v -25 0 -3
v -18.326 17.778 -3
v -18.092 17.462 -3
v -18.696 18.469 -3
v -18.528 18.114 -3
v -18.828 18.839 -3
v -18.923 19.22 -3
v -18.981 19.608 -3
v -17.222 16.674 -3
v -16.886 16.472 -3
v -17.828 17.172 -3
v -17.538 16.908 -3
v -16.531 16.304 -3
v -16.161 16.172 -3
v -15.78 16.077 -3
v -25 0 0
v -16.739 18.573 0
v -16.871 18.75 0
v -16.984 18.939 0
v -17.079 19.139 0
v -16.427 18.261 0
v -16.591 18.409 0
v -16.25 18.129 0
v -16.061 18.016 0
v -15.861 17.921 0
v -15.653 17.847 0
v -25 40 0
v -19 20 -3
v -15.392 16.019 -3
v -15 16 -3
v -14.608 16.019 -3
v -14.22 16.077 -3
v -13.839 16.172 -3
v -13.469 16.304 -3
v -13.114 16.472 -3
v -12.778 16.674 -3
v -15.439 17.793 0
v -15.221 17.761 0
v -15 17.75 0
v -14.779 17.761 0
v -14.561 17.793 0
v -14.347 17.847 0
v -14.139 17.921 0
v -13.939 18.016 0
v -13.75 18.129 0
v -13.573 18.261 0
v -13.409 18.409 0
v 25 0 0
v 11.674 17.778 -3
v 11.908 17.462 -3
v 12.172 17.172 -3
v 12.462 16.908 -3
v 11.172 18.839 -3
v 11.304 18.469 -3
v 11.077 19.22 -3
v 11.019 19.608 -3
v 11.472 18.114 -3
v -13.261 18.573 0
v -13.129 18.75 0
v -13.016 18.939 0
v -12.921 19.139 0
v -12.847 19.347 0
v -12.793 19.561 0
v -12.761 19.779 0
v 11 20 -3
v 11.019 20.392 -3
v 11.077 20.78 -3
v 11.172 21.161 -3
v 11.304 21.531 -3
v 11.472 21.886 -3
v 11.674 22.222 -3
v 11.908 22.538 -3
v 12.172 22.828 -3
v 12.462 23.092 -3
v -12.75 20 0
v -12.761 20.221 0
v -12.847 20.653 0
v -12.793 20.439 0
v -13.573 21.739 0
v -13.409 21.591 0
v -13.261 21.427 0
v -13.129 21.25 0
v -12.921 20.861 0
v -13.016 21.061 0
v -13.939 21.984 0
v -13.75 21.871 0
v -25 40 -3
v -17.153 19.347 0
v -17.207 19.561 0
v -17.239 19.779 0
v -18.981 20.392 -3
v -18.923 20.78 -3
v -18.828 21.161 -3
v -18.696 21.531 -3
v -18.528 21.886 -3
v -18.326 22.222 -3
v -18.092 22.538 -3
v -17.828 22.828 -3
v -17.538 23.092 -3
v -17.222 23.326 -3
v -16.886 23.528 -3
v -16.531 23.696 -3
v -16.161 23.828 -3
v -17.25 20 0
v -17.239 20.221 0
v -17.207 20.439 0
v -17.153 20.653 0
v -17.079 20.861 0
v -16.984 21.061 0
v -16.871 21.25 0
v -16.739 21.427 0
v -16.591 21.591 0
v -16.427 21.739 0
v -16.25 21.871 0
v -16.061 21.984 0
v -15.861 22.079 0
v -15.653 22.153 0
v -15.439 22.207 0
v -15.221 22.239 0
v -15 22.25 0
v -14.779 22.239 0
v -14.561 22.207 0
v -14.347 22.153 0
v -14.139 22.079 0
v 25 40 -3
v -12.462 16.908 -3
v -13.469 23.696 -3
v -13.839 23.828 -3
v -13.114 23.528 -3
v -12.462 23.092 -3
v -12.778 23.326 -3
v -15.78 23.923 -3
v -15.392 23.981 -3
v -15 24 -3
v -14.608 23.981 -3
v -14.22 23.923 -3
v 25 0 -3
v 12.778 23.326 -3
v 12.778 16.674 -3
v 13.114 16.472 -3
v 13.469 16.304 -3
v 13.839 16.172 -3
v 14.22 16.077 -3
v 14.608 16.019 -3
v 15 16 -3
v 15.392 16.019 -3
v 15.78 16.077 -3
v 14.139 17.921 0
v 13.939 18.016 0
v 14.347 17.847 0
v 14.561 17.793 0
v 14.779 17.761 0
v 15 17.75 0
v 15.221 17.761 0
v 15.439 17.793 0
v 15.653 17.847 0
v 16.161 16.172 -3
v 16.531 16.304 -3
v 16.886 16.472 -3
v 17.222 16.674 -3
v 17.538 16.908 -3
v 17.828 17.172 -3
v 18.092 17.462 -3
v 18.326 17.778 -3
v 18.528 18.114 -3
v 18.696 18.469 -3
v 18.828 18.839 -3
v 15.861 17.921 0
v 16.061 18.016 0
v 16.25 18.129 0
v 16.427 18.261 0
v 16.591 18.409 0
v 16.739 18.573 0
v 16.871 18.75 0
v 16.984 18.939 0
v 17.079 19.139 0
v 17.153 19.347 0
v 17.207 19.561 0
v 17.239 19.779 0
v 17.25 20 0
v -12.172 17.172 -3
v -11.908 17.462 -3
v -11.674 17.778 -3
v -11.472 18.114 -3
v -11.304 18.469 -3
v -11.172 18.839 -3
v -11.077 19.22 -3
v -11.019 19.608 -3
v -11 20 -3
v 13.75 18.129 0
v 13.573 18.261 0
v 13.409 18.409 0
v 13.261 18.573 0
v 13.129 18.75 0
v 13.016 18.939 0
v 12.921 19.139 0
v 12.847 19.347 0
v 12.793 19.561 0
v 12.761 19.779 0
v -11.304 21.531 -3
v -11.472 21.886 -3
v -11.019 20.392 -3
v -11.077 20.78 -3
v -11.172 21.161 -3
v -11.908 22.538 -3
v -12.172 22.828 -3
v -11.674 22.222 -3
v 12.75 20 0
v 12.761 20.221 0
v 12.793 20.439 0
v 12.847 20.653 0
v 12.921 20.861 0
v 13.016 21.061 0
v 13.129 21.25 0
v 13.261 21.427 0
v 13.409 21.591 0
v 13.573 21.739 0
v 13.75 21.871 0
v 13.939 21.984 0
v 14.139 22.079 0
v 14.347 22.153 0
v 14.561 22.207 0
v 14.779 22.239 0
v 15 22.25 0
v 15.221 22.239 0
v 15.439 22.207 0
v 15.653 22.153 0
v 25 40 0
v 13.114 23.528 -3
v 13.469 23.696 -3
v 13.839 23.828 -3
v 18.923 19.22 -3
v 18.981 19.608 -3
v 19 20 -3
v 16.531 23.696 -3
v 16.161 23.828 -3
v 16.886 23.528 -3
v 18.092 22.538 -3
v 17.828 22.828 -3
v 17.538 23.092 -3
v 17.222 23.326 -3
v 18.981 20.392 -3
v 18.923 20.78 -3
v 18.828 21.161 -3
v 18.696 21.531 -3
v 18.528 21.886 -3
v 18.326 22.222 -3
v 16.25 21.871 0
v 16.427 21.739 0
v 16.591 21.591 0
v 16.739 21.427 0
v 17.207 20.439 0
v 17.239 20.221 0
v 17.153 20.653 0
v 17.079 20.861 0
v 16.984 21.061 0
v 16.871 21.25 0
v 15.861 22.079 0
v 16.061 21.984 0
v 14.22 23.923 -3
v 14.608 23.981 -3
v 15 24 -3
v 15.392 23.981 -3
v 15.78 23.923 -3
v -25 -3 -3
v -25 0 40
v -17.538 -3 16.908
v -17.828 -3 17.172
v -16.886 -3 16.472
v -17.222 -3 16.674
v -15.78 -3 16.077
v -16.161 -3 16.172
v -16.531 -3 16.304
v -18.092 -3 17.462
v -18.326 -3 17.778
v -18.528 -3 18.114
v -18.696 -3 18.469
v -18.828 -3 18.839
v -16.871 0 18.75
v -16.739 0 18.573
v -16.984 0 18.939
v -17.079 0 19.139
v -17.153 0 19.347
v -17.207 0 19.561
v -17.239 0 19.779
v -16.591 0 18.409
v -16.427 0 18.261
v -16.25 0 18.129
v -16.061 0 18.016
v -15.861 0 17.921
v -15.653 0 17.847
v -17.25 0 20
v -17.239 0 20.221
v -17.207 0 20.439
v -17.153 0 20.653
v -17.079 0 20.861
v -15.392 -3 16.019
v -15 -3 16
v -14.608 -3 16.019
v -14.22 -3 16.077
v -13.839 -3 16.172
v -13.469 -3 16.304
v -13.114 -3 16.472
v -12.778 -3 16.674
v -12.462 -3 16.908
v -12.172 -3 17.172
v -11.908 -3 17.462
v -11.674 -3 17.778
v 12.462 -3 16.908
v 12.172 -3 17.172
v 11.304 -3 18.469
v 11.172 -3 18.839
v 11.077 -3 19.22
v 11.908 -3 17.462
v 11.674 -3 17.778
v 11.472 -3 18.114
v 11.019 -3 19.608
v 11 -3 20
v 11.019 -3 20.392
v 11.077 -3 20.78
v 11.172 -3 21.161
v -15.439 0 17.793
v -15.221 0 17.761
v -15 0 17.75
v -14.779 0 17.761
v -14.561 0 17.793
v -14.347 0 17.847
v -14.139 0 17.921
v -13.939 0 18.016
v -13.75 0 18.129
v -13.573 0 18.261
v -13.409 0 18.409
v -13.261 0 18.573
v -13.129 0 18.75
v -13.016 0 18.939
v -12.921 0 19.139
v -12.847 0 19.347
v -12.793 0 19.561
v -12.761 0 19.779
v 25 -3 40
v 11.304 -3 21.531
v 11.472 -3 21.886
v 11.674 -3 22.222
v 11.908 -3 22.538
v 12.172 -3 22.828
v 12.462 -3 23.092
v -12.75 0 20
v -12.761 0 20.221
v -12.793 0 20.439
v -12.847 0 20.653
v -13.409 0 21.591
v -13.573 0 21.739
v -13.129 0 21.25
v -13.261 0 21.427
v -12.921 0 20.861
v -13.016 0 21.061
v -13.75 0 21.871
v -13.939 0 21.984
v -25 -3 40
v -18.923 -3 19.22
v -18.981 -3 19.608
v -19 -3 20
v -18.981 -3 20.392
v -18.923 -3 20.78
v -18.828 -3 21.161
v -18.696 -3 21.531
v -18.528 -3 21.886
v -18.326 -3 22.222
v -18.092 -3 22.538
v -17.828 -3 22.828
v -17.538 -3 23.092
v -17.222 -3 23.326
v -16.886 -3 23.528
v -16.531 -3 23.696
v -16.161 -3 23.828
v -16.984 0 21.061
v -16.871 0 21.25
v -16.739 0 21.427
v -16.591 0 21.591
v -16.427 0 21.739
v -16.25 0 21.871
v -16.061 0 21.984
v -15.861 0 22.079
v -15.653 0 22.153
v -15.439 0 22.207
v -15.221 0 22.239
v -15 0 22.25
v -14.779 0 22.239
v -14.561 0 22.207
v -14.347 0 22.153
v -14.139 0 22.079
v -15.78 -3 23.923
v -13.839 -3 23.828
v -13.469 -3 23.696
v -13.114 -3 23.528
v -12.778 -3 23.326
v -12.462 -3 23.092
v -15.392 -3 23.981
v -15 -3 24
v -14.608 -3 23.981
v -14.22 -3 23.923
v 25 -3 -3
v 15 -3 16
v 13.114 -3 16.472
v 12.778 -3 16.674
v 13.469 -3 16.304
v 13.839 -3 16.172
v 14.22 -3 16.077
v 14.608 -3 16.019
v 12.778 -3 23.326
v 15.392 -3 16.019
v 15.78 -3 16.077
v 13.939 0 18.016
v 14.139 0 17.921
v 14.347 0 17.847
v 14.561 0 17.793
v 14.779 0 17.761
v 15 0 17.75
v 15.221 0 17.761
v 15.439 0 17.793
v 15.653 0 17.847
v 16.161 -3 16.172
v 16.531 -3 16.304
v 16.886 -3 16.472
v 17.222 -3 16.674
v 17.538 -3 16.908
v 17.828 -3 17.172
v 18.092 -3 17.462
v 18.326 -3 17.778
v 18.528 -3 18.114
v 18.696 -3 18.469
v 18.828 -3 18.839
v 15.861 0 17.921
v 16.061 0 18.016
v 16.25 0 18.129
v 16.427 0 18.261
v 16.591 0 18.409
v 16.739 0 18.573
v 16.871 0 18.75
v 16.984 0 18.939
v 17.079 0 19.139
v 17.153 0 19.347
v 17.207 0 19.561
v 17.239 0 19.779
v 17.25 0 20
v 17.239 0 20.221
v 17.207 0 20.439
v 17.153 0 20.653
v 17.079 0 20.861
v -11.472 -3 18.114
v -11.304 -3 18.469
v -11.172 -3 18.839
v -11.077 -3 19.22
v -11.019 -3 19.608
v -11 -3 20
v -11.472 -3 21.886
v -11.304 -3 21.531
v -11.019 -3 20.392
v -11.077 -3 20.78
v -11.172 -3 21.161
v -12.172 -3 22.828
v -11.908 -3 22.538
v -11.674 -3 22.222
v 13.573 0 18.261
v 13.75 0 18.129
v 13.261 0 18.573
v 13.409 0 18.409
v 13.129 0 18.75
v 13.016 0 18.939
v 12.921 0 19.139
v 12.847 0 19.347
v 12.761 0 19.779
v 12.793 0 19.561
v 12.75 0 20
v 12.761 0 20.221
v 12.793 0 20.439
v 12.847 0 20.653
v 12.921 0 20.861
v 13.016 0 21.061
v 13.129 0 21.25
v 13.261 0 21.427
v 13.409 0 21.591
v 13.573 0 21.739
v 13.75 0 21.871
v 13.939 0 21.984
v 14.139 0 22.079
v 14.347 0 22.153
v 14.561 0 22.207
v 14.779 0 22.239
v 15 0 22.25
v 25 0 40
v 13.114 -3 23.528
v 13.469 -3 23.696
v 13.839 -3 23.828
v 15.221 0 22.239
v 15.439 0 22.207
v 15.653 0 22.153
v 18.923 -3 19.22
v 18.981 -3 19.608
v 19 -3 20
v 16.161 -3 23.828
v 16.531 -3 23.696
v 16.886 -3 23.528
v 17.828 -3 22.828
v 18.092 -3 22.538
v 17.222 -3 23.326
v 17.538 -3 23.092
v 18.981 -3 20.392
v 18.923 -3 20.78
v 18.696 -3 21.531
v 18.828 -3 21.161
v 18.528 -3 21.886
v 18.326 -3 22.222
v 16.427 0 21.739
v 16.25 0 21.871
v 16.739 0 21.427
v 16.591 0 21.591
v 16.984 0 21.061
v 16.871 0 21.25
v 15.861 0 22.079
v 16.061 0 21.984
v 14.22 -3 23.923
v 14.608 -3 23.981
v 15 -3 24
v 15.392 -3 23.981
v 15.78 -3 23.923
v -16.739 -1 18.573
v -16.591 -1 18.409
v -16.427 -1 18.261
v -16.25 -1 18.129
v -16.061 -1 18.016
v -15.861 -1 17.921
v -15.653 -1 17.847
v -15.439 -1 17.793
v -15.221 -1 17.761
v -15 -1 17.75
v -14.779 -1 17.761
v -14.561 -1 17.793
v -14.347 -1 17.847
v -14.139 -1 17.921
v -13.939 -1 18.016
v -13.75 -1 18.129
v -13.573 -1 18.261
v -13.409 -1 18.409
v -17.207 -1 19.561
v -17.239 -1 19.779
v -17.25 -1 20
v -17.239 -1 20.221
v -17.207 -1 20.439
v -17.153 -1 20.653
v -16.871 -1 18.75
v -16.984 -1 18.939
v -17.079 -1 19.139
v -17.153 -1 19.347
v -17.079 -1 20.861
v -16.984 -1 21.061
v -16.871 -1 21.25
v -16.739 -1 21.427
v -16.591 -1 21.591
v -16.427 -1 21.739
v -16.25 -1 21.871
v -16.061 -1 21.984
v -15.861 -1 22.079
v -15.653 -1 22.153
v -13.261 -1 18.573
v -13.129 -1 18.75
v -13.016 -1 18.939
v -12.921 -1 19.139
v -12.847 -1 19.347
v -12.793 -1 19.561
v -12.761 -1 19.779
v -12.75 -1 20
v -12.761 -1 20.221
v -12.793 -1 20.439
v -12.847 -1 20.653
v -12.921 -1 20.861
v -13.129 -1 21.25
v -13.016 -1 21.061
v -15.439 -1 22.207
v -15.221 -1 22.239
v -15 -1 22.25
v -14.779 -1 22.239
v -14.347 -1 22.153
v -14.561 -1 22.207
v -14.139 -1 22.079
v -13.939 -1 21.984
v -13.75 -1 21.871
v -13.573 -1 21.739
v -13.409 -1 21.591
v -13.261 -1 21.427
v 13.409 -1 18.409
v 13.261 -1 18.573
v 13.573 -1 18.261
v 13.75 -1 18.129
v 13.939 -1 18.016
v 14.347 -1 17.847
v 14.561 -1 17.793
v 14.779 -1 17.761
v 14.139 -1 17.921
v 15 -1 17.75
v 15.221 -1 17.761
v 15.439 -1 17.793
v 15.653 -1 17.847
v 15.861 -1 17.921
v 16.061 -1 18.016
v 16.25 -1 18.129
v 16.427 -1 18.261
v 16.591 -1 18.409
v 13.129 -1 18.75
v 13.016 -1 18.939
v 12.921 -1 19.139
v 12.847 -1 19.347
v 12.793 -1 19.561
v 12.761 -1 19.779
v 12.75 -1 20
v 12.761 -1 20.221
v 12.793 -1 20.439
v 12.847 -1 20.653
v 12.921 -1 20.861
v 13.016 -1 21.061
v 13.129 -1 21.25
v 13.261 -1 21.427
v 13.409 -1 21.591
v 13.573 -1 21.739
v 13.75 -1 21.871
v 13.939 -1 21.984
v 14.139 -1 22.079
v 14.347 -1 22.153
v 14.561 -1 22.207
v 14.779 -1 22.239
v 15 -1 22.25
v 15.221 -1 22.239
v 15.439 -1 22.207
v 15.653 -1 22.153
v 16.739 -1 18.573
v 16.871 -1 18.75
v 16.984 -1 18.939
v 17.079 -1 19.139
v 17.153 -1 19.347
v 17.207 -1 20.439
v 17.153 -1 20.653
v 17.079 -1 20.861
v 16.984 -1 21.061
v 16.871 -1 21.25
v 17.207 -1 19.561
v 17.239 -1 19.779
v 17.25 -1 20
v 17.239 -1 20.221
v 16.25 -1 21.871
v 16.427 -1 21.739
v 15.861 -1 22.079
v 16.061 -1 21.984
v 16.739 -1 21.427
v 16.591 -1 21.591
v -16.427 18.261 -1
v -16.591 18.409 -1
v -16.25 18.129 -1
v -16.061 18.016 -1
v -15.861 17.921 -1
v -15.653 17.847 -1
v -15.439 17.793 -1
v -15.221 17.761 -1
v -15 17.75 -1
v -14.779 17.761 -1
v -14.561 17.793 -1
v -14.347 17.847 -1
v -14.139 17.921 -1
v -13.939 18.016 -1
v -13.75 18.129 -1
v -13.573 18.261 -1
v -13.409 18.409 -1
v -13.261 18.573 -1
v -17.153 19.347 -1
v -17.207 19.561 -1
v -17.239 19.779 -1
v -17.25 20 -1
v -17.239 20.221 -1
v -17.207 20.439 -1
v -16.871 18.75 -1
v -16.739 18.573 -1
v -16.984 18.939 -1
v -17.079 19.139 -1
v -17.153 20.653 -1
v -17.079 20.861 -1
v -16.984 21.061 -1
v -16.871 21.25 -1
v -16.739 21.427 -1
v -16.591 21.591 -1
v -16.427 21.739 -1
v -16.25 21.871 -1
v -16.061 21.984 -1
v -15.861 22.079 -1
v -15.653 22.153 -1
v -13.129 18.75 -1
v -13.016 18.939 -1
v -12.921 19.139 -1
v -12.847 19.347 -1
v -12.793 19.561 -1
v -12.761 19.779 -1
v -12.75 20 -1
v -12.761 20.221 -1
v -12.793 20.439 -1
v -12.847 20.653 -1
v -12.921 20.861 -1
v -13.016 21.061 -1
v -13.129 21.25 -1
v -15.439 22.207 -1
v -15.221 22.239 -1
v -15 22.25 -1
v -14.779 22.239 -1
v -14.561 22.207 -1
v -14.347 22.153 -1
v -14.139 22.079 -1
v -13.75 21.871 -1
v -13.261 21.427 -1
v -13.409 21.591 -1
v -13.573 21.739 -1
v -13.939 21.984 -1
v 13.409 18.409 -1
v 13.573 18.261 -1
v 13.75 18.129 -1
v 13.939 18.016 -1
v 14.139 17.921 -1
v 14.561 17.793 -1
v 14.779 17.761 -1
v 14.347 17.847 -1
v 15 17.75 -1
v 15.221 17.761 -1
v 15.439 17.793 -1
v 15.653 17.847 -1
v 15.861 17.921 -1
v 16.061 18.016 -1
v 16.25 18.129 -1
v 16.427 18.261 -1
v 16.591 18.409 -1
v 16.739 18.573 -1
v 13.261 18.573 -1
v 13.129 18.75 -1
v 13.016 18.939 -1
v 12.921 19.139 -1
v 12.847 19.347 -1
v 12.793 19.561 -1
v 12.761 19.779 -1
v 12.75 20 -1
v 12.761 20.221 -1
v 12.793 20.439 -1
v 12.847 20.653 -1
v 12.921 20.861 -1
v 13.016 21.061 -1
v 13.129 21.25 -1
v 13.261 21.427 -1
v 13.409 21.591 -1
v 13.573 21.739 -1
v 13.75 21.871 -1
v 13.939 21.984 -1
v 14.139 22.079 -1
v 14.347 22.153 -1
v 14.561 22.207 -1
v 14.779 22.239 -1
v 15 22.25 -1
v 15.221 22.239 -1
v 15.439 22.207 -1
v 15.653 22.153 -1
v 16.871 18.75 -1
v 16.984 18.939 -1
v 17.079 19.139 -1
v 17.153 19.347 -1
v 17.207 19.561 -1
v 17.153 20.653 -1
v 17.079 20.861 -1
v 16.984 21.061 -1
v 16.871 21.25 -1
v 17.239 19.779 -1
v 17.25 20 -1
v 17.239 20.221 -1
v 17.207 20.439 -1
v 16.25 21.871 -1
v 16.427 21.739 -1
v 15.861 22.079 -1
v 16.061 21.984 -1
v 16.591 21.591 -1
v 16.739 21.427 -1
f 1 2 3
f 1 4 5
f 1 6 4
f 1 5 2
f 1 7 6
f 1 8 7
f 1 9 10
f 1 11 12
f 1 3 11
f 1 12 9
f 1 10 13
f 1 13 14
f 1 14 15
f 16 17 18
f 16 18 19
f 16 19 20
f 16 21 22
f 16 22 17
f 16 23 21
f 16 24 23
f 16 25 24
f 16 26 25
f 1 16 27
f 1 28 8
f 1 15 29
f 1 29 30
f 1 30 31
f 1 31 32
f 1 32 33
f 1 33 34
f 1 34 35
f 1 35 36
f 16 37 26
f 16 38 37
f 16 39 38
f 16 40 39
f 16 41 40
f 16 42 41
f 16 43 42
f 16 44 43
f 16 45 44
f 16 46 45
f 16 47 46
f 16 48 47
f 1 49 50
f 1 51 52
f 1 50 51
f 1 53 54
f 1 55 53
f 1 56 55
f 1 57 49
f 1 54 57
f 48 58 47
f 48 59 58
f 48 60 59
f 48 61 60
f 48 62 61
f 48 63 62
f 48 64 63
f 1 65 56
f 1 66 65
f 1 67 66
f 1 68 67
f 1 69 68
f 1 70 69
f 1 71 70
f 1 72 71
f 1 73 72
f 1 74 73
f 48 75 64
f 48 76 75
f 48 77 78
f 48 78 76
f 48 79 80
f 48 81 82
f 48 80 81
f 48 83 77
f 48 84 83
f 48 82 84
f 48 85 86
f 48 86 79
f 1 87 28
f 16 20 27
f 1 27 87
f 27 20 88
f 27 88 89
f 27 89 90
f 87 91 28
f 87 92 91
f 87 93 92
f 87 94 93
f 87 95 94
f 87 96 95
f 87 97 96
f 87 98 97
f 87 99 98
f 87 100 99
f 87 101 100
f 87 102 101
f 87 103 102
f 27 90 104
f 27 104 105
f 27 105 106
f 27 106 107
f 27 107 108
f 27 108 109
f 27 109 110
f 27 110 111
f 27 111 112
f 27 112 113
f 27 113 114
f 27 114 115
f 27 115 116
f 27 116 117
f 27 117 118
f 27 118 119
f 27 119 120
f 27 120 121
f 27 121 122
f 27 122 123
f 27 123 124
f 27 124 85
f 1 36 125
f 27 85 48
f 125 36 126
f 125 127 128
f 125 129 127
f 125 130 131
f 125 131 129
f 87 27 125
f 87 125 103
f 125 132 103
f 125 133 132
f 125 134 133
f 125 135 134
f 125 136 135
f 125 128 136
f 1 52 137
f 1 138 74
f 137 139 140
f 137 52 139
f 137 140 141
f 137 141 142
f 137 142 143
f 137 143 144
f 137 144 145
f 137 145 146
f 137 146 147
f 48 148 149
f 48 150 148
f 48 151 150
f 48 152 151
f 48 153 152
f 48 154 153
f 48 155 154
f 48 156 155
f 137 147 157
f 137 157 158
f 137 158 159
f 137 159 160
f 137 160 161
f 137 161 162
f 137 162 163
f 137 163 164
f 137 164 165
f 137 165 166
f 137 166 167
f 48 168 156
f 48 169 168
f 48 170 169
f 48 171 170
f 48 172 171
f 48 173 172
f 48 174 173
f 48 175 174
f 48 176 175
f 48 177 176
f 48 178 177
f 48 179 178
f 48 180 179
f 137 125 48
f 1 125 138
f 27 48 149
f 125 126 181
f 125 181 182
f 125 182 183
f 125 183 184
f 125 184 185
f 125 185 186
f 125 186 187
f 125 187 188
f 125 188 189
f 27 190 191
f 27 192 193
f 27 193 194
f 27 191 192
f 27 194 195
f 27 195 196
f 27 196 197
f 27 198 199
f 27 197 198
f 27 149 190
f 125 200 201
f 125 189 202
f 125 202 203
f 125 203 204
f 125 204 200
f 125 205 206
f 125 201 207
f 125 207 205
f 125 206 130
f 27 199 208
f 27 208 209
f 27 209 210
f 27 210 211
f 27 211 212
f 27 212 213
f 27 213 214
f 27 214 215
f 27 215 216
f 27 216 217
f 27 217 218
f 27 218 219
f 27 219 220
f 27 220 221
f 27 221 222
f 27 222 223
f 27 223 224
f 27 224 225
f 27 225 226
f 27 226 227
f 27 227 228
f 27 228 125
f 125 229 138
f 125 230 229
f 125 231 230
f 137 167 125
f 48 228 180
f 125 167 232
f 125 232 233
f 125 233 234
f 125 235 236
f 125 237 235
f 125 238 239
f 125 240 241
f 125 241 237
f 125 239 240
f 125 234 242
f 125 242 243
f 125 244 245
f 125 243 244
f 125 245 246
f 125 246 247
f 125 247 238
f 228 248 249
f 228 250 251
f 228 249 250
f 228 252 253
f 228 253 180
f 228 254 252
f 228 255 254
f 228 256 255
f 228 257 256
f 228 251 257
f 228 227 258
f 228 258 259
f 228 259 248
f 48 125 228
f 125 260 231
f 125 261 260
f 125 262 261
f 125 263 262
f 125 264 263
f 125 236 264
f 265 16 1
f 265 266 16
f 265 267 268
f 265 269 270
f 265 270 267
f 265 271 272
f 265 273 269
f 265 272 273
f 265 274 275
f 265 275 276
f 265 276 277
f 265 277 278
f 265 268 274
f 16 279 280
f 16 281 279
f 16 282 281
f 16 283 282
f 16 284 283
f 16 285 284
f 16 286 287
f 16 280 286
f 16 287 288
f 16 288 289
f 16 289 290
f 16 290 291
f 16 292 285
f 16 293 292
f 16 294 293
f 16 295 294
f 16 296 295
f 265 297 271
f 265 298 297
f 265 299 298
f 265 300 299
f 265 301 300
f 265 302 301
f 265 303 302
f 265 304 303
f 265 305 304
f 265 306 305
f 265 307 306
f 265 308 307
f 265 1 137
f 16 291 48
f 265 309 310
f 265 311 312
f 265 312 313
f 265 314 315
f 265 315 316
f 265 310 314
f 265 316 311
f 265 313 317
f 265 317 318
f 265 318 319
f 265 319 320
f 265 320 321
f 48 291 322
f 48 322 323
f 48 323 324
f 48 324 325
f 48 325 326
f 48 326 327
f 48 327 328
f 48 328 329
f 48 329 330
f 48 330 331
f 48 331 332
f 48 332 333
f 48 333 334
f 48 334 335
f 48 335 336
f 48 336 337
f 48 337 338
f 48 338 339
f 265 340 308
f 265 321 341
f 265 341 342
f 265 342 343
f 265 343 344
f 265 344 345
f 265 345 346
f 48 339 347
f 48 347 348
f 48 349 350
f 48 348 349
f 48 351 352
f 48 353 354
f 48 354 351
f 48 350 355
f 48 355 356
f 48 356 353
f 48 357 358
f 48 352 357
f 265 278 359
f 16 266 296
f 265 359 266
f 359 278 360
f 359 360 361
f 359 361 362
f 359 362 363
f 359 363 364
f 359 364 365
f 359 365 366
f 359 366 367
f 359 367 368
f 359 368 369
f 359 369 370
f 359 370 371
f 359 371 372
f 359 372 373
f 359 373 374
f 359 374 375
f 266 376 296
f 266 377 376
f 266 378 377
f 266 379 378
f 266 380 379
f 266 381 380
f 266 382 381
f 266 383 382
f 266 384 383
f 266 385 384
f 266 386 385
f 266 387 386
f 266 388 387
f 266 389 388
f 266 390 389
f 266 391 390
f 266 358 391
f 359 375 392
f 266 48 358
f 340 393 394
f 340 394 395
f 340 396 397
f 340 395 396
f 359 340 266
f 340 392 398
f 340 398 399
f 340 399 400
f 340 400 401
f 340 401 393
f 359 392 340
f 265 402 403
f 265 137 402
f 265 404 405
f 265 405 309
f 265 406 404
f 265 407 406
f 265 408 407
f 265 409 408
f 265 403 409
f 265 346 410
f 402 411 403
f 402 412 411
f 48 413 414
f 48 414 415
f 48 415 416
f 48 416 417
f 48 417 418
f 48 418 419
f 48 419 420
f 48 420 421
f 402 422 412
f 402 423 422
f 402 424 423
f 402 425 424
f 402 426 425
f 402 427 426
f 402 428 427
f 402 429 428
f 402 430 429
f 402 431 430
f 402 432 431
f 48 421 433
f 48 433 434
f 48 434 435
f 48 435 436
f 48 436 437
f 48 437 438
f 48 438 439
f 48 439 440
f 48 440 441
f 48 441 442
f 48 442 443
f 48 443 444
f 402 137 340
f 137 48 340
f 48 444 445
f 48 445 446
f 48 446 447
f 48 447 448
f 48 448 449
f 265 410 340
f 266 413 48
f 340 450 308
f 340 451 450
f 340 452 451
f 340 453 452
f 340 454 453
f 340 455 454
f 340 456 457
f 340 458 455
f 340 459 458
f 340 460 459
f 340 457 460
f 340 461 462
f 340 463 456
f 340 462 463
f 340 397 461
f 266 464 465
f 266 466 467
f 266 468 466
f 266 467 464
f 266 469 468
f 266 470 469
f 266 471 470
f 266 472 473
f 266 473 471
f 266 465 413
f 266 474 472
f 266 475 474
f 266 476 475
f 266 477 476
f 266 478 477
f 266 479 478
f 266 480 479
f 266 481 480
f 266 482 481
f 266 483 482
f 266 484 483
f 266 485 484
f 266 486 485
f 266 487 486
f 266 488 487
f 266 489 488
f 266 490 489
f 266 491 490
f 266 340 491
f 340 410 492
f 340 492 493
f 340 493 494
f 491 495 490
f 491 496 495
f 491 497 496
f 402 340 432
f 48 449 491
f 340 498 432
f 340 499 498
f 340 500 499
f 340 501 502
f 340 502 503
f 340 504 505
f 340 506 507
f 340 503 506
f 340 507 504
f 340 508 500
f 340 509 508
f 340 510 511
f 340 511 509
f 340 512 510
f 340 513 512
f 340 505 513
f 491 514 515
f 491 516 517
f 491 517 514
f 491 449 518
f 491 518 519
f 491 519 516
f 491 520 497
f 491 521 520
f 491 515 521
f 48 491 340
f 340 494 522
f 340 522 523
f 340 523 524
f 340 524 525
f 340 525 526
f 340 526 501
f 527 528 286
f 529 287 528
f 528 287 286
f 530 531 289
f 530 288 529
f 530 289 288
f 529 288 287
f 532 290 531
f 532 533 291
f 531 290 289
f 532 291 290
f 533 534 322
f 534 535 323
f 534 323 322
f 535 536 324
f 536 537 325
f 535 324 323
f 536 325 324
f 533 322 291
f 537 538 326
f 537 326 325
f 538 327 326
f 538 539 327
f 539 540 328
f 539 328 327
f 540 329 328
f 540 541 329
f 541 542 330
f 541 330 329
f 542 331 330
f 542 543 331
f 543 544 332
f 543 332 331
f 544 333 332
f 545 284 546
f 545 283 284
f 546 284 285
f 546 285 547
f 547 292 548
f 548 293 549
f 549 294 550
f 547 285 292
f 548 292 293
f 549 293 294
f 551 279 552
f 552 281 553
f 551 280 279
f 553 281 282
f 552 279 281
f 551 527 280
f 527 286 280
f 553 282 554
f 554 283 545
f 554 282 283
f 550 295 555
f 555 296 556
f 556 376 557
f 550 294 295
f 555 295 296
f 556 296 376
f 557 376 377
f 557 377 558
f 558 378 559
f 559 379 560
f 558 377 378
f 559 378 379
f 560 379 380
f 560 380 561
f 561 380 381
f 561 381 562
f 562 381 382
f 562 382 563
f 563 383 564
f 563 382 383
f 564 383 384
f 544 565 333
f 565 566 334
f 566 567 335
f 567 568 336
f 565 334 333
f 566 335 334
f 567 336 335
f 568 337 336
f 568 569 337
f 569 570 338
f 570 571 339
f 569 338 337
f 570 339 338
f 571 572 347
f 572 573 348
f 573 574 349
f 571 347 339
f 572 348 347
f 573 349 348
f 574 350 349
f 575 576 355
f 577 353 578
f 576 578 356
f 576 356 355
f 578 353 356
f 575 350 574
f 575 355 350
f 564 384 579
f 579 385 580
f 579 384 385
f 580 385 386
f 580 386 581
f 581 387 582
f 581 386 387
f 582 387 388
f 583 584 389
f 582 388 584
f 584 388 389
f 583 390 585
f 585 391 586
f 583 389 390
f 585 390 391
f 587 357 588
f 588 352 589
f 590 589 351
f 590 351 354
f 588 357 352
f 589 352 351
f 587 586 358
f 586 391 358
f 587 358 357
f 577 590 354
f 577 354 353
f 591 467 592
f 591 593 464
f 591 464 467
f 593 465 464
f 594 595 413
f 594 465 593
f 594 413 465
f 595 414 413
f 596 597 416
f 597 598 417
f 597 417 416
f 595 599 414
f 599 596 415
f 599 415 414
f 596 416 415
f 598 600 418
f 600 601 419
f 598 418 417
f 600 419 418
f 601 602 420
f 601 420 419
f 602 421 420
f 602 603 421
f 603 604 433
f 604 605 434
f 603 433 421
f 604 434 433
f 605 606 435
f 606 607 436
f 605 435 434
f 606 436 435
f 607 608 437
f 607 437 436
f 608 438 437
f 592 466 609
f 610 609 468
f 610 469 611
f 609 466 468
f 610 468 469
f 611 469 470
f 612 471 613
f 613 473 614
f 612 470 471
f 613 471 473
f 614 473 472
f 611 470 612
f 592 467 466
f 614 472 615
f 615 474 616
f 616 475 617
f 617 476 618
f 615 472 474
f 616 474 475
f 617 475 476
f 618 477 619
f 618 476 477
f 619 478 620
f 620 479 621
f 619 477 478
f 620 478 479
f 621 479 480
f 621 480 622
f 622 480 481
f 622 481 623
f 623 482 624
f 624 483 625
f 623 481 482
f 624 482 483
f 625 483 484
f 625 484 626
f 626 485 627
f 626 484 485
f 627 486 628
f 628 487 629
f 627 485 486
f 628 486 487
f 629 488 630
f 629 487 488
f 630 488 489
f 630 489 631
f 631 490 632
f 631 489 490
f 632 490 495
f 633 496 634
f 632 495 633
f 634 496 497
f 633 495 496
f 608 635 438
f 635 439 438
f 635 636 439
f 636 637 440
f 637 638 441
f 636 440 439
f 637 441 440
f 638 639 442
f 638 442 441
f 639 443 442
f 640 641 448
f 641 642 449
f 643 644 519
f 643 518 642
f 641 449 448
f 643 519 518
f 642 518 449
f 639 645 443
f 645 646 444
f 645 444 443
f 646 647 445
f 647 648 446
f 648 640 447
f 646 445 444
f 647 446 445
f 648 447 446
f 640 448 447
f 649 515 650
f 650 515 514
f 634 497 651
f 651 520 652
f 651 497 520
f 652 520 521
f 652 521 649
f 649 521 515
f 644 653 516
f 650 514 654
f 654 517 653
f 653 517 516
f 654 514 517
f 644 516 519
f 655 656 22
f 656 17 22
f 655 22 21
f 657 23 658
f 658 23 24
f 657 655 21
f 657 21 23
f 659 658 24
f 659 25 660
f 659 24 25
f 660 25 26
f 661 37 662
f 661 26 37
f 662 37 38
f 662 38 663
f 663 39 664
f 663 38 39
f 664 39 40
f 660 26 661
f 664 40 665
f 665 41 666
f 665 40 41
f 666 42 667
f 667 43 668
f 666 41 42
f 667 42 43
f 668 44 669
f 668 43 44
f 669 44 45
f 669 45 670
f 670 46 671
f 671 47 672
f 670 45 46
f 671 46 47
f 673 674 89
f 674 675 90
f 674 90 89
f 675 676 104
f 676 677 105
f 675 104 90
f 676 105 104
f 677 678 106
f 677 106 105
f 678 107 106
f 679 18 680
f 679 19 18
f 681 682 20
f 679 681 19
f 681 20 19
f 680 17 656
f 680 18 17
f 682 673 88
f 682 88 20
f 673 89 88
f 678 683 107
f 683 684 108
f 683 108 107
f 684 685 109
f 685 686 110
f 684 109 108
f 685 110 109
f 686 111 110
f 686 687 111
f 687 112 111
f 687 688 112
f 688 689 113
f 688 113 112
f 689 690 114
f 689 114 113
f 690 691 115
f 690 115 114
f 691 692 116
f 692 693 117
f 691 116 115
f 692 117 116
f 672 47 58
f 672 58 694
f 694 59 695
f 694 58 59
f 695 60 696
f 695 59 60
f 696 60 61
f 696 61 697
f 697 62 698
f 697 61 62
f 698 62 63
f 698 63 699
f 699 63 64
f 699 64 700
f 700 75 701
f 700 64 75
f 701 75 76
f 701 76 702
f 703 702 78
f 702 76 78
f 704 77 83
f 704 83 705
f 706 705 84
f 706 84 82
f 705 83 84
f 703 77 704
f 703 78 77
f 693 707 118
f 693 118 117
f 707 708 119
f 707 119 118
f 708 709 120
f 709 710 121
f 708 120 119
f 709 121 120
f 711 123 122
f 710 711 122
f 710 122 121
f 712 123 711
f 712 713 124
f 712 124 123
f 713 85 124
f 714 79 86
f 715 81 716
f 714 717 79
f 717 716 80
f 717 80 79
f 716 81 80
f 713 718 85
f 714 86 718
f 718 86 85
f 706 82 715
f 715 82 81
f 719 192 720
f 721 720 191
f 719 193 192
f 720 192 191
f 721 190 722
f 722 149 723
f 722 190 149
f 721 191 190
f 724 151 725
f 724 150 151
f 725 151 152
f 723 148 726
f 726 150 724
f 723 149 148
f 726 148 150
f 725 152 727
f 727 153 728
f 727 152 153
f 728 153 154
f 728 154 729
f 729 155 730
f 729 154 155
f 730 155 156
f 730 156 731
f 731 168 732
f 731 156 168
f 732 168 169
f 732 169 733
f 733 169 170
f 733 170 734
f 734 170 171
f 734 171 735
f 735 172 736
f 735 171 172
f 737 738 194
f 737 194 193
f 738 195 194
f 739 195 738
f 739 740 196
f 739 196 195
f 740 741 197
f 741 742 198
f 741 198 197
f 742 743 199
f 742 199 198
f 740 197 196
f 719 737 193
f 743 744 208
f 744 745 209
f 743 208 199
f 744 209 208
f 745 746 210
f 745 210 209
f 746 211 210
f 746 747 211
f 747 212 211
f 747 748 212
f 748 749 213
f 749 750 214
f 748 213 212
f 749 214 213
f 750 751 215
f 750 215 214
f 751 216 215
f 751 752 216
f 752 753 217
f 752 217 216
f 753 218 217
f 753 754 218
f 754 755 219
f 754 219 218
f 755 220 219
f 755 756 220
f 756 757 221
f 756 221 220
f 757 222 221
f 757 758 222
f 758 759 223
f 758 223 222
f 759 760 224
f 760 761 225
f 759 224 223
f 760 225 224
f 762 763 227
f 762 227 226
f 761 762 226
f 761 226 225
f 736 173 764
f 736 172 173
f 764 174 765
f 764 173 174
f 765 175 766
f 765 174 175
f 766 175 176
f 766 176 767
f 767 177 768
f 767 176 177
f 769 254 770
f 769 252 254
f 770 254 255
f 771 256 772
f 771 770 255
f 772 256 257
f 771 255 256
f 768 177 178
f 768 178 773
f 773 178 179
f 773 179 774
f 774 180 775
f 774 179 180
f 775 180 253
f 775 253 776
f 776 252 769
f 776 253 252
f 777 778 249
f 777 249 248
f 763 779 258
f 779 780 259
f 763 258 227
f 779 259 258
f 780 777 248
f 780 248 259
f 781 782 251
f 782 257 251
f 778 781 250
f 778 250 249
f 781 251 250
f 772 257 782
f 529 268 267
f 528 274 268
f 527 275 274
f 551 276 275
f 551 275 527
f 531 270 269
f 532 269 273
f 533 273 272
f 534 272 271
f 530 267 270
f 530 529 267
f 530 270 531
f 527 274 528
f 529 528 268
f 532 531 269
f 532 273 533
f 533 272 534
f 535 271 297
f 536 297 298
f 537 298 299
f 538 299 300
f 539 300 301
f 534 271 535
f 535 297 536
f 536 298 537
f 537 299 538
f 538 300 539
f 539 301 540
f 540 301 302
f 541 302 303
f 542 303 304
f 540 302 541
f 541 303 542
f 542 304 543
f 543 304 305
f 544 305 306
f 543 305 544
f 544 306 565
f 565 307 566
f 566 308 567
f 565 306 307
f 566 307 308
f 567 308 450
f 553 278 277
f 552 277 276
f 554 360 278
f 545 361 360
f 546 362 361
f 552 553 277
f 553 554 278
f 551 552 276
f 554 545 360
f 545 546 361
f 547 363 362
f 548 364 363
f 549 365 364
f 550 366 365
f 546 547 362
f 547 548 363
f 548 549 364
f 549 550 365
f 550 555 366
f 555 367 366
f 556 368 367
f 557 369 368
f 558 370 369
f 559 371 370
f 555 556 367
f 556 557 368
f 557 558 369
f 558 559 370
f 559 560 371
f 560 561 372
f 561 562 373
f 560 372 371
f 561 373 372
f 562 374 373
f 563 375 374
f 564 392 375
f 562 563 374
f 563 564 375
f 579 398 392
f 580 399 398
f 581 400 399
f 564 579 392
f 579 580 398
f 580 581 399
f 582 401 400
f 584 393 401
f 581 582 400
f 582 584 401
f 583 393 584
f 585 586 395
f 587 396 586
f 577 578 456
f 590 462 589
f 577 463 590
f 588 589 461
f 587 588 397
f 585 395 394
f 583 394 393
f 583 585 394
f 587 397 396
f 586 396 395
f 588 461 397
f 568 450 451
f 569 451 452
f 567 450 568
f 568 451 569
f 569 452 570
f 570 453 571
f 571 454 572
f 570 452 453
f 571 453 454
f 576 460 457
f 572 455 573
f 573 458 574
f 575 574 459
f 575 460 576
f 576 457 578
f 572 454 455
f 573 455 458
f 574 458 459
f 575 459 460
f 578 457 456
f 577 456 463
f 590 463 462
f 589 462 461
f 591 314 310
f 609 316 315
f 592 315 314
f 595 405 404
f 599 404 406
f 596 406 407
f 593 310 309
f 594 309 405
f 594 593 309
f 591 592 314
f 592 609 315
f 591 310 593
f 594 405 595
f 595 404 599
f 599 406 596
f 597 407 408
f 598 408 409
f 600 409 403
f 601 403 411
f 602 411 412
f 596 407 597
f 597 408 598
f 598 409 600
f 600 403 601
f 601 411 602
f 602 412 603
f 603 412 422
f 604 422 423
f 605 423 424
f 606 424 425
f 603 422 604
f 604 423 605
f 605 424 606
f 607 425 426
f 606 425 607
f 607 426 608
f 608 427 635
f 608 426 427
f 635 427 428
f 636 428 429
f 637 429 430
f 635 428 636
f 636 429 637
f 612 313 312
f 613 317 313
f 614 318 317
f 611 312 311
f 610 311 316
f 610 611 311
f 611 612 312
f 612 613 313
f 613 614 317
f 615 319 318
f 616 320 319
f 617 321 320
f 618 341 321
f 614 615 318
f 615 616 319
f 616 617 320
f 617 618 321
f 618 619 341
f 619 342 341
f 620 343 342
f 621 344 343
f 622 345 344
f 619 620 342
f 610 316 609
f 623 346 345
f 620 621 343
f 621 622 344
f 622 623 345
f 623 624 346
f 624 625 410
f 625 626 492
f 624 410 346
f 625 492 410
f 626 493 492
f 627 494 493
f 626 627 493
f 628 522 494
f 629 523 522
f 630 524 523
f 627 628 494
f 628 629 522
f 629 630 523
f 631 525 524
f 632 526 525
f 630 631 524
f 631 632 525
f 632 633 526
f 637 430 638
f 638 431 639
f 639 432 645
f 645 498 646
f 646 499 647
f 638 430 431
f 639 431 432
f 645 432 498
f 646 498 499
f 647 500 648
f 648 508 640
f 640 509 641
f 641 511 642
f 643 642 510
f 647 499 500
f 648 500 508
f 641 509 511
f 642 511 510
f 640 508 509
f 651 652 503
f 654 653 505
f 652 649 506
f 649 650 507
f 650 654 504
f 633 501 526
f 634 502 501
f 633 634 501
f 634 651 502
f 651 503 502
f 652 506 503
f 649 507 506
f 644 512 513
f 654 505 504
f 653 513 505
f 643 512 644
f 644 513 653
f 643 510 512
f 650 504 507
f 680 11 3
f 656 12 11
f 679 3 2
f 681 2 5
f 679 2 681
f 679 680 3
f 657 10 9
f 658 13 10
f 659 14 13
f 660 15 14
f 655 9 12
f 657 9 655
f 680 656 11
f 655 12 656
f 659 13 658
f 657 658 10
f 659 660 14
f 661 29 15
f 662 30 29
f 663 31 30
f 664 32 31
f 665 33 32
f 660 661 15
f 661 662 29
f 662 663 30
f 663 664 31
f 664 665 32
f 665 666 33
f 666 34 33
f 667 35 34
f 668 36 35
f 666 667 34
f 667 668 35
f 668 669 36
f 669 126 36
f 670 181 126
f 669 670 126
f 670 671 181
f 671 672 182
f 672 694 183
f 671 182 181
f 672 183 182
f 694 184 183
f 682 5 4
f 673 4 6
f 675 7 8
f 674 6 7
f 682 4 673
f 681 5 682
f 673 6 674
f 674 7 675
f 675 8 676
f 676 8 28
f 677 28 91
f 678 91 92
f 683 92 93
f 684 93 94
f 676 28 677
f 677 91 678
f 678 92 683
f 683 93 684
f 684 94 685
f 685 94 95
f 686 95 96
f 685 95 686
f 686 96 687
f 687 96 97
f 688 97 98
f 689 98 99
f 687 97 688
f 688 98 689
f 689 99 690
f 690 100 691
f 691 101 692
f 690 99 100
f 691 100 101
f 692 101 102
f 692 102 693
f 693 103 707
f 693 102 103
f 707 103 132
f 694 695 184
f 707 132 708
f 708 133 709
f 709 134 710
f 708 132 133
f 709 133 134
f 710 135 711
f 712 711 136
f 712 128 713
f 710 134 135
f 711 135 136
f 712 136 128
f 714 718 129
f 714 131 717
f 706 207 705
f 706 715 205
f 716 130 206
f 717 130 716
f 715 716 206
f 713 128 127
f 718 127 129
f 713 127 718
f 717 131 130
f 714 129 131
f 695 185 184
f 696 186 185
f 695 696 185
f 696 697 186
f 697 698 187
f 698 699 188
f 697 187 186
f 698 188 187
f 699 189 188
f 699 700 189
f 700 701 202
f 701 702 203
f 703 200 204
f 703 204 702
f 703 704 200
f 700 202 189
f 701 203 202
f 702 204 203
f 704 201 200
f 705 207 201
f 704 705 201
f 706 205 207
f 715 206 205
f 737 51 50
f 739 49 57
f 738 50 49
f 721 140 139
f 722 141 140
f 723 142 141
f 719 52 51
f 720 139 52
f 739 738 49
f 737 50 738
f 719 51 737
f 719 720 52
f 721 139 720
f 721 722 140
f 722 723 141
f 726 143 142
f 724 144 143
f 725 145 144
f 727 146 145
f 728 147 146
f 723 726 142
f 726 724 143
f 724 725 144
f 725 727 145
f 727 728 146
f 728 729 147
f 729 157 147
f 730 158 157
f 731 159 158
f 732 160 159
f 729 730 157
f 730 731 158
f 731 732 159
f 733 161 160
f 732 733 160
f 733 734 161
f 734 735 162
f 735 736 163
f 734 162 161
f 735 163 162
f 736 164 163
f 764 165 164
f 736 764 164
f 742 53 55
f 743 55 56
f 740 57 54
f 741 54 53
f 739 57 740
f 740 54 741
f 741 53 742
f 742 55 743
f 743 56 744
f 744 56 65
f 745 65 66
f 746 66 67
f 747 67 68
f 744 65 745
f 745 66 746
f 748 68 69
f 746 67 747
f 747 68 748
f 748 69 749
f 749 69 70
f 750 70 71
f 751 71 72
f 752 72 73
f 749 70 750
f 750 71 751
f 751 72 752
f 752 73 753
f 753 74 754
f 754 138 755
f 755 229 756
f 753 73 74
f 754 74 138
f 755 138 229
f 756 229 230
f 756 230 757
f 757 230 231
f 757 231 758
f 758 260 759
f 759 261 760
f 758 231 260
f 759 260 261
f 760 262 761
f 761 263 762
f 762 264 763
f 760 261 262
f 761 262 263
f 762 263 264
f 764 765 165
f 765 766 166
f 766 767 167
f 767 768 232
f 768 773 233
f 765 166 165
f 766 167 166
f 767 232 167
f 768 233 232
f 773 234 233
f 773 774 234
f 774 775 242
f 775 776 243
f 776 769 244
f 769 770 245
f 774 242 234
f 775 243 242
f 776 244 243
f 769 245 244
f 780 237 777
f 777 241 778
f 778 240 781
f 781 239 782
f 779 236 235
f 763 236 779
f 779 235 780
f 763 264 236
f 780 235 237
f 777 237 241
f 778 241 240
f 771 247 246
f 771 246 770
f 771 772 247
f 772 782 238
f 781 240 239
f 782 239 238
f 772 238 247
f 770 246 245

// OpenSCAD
// =====================================================
// L字金具 (L-bracket) with M4 countersunk holes
// 内側コーナーが原点
// 水平フランジ: +Y 方向 / 垂直フランジ: +Z 方向
// =====================================================

$fn = 64;

// ---- パラメータ ----
width       = 50;    // フランジ幅 (X)
h_depth     = 40;    // 水平フランジ奥行き (Y)
v_height    = 40;    // 垂直フランジ高さ (Z)
t           = 3;     // 板厚
hole_d      = 4.5;   // M4 貫通穴径
cs_d        = 8;     // 皿座面径
cs_depth    = 2;     // 皿座面深さ
edge_offset = 10;    // 縁からの穴位置
eps         = 0.1;   // ブーリアン用マージン

hole_x = width / 2 - edge_offset;   // 穴の X 位置 (±15mm)

// ---- 皿穴(ローカル +Z 軸方向、z=0 が外側の面)----
module csk_hole() {
    // 貫通穴 Φ4.5
    translate([0, 0, -eps])
        cylinder(h = t + 2 * eps, d = hole_d);
    // 皿座面(円錐)Φ8 → Φ4.5、深さ 2mm
    translate([0, 0, -eps])
        cylinder(h  = cs_depth + eps,
                 d1 = cs_d + eps * (cs_d - hole_d) / cs_depth,
                 d2 = hole_d);
}

// ---- 本体 ----
module bracket_body() {
    union() {
        // 水平フランジ(上面 z=0、+Y 方向)
        translate([-width / 2, 0, -t])
            cube([width, h_depth, t]);
        // 垂直フランジ(内面 y=0、+Z 方向、コーナー部を含む)
        translate([-width / 2, -t, -t])
            cube([width, t, v_height + t]);
    }
}

// ---- 組み立て ----
difference() {
    bracket_body();

    // 水平フランジの皿穴(皿座面は下側=外側)
    for (sx = [-1, 1])
        translate([sx * hole_x, h_depth / 2, -t])
            csk_hole();

    // 垂直フランジの皿穴(皿座面は -Y 側=外側)
    for (sx = [-1, 1])
        translate([sx * hole_x, -t, v_height / 2])
            rotate([-90, 0, 0])
                csk_hole();
}
